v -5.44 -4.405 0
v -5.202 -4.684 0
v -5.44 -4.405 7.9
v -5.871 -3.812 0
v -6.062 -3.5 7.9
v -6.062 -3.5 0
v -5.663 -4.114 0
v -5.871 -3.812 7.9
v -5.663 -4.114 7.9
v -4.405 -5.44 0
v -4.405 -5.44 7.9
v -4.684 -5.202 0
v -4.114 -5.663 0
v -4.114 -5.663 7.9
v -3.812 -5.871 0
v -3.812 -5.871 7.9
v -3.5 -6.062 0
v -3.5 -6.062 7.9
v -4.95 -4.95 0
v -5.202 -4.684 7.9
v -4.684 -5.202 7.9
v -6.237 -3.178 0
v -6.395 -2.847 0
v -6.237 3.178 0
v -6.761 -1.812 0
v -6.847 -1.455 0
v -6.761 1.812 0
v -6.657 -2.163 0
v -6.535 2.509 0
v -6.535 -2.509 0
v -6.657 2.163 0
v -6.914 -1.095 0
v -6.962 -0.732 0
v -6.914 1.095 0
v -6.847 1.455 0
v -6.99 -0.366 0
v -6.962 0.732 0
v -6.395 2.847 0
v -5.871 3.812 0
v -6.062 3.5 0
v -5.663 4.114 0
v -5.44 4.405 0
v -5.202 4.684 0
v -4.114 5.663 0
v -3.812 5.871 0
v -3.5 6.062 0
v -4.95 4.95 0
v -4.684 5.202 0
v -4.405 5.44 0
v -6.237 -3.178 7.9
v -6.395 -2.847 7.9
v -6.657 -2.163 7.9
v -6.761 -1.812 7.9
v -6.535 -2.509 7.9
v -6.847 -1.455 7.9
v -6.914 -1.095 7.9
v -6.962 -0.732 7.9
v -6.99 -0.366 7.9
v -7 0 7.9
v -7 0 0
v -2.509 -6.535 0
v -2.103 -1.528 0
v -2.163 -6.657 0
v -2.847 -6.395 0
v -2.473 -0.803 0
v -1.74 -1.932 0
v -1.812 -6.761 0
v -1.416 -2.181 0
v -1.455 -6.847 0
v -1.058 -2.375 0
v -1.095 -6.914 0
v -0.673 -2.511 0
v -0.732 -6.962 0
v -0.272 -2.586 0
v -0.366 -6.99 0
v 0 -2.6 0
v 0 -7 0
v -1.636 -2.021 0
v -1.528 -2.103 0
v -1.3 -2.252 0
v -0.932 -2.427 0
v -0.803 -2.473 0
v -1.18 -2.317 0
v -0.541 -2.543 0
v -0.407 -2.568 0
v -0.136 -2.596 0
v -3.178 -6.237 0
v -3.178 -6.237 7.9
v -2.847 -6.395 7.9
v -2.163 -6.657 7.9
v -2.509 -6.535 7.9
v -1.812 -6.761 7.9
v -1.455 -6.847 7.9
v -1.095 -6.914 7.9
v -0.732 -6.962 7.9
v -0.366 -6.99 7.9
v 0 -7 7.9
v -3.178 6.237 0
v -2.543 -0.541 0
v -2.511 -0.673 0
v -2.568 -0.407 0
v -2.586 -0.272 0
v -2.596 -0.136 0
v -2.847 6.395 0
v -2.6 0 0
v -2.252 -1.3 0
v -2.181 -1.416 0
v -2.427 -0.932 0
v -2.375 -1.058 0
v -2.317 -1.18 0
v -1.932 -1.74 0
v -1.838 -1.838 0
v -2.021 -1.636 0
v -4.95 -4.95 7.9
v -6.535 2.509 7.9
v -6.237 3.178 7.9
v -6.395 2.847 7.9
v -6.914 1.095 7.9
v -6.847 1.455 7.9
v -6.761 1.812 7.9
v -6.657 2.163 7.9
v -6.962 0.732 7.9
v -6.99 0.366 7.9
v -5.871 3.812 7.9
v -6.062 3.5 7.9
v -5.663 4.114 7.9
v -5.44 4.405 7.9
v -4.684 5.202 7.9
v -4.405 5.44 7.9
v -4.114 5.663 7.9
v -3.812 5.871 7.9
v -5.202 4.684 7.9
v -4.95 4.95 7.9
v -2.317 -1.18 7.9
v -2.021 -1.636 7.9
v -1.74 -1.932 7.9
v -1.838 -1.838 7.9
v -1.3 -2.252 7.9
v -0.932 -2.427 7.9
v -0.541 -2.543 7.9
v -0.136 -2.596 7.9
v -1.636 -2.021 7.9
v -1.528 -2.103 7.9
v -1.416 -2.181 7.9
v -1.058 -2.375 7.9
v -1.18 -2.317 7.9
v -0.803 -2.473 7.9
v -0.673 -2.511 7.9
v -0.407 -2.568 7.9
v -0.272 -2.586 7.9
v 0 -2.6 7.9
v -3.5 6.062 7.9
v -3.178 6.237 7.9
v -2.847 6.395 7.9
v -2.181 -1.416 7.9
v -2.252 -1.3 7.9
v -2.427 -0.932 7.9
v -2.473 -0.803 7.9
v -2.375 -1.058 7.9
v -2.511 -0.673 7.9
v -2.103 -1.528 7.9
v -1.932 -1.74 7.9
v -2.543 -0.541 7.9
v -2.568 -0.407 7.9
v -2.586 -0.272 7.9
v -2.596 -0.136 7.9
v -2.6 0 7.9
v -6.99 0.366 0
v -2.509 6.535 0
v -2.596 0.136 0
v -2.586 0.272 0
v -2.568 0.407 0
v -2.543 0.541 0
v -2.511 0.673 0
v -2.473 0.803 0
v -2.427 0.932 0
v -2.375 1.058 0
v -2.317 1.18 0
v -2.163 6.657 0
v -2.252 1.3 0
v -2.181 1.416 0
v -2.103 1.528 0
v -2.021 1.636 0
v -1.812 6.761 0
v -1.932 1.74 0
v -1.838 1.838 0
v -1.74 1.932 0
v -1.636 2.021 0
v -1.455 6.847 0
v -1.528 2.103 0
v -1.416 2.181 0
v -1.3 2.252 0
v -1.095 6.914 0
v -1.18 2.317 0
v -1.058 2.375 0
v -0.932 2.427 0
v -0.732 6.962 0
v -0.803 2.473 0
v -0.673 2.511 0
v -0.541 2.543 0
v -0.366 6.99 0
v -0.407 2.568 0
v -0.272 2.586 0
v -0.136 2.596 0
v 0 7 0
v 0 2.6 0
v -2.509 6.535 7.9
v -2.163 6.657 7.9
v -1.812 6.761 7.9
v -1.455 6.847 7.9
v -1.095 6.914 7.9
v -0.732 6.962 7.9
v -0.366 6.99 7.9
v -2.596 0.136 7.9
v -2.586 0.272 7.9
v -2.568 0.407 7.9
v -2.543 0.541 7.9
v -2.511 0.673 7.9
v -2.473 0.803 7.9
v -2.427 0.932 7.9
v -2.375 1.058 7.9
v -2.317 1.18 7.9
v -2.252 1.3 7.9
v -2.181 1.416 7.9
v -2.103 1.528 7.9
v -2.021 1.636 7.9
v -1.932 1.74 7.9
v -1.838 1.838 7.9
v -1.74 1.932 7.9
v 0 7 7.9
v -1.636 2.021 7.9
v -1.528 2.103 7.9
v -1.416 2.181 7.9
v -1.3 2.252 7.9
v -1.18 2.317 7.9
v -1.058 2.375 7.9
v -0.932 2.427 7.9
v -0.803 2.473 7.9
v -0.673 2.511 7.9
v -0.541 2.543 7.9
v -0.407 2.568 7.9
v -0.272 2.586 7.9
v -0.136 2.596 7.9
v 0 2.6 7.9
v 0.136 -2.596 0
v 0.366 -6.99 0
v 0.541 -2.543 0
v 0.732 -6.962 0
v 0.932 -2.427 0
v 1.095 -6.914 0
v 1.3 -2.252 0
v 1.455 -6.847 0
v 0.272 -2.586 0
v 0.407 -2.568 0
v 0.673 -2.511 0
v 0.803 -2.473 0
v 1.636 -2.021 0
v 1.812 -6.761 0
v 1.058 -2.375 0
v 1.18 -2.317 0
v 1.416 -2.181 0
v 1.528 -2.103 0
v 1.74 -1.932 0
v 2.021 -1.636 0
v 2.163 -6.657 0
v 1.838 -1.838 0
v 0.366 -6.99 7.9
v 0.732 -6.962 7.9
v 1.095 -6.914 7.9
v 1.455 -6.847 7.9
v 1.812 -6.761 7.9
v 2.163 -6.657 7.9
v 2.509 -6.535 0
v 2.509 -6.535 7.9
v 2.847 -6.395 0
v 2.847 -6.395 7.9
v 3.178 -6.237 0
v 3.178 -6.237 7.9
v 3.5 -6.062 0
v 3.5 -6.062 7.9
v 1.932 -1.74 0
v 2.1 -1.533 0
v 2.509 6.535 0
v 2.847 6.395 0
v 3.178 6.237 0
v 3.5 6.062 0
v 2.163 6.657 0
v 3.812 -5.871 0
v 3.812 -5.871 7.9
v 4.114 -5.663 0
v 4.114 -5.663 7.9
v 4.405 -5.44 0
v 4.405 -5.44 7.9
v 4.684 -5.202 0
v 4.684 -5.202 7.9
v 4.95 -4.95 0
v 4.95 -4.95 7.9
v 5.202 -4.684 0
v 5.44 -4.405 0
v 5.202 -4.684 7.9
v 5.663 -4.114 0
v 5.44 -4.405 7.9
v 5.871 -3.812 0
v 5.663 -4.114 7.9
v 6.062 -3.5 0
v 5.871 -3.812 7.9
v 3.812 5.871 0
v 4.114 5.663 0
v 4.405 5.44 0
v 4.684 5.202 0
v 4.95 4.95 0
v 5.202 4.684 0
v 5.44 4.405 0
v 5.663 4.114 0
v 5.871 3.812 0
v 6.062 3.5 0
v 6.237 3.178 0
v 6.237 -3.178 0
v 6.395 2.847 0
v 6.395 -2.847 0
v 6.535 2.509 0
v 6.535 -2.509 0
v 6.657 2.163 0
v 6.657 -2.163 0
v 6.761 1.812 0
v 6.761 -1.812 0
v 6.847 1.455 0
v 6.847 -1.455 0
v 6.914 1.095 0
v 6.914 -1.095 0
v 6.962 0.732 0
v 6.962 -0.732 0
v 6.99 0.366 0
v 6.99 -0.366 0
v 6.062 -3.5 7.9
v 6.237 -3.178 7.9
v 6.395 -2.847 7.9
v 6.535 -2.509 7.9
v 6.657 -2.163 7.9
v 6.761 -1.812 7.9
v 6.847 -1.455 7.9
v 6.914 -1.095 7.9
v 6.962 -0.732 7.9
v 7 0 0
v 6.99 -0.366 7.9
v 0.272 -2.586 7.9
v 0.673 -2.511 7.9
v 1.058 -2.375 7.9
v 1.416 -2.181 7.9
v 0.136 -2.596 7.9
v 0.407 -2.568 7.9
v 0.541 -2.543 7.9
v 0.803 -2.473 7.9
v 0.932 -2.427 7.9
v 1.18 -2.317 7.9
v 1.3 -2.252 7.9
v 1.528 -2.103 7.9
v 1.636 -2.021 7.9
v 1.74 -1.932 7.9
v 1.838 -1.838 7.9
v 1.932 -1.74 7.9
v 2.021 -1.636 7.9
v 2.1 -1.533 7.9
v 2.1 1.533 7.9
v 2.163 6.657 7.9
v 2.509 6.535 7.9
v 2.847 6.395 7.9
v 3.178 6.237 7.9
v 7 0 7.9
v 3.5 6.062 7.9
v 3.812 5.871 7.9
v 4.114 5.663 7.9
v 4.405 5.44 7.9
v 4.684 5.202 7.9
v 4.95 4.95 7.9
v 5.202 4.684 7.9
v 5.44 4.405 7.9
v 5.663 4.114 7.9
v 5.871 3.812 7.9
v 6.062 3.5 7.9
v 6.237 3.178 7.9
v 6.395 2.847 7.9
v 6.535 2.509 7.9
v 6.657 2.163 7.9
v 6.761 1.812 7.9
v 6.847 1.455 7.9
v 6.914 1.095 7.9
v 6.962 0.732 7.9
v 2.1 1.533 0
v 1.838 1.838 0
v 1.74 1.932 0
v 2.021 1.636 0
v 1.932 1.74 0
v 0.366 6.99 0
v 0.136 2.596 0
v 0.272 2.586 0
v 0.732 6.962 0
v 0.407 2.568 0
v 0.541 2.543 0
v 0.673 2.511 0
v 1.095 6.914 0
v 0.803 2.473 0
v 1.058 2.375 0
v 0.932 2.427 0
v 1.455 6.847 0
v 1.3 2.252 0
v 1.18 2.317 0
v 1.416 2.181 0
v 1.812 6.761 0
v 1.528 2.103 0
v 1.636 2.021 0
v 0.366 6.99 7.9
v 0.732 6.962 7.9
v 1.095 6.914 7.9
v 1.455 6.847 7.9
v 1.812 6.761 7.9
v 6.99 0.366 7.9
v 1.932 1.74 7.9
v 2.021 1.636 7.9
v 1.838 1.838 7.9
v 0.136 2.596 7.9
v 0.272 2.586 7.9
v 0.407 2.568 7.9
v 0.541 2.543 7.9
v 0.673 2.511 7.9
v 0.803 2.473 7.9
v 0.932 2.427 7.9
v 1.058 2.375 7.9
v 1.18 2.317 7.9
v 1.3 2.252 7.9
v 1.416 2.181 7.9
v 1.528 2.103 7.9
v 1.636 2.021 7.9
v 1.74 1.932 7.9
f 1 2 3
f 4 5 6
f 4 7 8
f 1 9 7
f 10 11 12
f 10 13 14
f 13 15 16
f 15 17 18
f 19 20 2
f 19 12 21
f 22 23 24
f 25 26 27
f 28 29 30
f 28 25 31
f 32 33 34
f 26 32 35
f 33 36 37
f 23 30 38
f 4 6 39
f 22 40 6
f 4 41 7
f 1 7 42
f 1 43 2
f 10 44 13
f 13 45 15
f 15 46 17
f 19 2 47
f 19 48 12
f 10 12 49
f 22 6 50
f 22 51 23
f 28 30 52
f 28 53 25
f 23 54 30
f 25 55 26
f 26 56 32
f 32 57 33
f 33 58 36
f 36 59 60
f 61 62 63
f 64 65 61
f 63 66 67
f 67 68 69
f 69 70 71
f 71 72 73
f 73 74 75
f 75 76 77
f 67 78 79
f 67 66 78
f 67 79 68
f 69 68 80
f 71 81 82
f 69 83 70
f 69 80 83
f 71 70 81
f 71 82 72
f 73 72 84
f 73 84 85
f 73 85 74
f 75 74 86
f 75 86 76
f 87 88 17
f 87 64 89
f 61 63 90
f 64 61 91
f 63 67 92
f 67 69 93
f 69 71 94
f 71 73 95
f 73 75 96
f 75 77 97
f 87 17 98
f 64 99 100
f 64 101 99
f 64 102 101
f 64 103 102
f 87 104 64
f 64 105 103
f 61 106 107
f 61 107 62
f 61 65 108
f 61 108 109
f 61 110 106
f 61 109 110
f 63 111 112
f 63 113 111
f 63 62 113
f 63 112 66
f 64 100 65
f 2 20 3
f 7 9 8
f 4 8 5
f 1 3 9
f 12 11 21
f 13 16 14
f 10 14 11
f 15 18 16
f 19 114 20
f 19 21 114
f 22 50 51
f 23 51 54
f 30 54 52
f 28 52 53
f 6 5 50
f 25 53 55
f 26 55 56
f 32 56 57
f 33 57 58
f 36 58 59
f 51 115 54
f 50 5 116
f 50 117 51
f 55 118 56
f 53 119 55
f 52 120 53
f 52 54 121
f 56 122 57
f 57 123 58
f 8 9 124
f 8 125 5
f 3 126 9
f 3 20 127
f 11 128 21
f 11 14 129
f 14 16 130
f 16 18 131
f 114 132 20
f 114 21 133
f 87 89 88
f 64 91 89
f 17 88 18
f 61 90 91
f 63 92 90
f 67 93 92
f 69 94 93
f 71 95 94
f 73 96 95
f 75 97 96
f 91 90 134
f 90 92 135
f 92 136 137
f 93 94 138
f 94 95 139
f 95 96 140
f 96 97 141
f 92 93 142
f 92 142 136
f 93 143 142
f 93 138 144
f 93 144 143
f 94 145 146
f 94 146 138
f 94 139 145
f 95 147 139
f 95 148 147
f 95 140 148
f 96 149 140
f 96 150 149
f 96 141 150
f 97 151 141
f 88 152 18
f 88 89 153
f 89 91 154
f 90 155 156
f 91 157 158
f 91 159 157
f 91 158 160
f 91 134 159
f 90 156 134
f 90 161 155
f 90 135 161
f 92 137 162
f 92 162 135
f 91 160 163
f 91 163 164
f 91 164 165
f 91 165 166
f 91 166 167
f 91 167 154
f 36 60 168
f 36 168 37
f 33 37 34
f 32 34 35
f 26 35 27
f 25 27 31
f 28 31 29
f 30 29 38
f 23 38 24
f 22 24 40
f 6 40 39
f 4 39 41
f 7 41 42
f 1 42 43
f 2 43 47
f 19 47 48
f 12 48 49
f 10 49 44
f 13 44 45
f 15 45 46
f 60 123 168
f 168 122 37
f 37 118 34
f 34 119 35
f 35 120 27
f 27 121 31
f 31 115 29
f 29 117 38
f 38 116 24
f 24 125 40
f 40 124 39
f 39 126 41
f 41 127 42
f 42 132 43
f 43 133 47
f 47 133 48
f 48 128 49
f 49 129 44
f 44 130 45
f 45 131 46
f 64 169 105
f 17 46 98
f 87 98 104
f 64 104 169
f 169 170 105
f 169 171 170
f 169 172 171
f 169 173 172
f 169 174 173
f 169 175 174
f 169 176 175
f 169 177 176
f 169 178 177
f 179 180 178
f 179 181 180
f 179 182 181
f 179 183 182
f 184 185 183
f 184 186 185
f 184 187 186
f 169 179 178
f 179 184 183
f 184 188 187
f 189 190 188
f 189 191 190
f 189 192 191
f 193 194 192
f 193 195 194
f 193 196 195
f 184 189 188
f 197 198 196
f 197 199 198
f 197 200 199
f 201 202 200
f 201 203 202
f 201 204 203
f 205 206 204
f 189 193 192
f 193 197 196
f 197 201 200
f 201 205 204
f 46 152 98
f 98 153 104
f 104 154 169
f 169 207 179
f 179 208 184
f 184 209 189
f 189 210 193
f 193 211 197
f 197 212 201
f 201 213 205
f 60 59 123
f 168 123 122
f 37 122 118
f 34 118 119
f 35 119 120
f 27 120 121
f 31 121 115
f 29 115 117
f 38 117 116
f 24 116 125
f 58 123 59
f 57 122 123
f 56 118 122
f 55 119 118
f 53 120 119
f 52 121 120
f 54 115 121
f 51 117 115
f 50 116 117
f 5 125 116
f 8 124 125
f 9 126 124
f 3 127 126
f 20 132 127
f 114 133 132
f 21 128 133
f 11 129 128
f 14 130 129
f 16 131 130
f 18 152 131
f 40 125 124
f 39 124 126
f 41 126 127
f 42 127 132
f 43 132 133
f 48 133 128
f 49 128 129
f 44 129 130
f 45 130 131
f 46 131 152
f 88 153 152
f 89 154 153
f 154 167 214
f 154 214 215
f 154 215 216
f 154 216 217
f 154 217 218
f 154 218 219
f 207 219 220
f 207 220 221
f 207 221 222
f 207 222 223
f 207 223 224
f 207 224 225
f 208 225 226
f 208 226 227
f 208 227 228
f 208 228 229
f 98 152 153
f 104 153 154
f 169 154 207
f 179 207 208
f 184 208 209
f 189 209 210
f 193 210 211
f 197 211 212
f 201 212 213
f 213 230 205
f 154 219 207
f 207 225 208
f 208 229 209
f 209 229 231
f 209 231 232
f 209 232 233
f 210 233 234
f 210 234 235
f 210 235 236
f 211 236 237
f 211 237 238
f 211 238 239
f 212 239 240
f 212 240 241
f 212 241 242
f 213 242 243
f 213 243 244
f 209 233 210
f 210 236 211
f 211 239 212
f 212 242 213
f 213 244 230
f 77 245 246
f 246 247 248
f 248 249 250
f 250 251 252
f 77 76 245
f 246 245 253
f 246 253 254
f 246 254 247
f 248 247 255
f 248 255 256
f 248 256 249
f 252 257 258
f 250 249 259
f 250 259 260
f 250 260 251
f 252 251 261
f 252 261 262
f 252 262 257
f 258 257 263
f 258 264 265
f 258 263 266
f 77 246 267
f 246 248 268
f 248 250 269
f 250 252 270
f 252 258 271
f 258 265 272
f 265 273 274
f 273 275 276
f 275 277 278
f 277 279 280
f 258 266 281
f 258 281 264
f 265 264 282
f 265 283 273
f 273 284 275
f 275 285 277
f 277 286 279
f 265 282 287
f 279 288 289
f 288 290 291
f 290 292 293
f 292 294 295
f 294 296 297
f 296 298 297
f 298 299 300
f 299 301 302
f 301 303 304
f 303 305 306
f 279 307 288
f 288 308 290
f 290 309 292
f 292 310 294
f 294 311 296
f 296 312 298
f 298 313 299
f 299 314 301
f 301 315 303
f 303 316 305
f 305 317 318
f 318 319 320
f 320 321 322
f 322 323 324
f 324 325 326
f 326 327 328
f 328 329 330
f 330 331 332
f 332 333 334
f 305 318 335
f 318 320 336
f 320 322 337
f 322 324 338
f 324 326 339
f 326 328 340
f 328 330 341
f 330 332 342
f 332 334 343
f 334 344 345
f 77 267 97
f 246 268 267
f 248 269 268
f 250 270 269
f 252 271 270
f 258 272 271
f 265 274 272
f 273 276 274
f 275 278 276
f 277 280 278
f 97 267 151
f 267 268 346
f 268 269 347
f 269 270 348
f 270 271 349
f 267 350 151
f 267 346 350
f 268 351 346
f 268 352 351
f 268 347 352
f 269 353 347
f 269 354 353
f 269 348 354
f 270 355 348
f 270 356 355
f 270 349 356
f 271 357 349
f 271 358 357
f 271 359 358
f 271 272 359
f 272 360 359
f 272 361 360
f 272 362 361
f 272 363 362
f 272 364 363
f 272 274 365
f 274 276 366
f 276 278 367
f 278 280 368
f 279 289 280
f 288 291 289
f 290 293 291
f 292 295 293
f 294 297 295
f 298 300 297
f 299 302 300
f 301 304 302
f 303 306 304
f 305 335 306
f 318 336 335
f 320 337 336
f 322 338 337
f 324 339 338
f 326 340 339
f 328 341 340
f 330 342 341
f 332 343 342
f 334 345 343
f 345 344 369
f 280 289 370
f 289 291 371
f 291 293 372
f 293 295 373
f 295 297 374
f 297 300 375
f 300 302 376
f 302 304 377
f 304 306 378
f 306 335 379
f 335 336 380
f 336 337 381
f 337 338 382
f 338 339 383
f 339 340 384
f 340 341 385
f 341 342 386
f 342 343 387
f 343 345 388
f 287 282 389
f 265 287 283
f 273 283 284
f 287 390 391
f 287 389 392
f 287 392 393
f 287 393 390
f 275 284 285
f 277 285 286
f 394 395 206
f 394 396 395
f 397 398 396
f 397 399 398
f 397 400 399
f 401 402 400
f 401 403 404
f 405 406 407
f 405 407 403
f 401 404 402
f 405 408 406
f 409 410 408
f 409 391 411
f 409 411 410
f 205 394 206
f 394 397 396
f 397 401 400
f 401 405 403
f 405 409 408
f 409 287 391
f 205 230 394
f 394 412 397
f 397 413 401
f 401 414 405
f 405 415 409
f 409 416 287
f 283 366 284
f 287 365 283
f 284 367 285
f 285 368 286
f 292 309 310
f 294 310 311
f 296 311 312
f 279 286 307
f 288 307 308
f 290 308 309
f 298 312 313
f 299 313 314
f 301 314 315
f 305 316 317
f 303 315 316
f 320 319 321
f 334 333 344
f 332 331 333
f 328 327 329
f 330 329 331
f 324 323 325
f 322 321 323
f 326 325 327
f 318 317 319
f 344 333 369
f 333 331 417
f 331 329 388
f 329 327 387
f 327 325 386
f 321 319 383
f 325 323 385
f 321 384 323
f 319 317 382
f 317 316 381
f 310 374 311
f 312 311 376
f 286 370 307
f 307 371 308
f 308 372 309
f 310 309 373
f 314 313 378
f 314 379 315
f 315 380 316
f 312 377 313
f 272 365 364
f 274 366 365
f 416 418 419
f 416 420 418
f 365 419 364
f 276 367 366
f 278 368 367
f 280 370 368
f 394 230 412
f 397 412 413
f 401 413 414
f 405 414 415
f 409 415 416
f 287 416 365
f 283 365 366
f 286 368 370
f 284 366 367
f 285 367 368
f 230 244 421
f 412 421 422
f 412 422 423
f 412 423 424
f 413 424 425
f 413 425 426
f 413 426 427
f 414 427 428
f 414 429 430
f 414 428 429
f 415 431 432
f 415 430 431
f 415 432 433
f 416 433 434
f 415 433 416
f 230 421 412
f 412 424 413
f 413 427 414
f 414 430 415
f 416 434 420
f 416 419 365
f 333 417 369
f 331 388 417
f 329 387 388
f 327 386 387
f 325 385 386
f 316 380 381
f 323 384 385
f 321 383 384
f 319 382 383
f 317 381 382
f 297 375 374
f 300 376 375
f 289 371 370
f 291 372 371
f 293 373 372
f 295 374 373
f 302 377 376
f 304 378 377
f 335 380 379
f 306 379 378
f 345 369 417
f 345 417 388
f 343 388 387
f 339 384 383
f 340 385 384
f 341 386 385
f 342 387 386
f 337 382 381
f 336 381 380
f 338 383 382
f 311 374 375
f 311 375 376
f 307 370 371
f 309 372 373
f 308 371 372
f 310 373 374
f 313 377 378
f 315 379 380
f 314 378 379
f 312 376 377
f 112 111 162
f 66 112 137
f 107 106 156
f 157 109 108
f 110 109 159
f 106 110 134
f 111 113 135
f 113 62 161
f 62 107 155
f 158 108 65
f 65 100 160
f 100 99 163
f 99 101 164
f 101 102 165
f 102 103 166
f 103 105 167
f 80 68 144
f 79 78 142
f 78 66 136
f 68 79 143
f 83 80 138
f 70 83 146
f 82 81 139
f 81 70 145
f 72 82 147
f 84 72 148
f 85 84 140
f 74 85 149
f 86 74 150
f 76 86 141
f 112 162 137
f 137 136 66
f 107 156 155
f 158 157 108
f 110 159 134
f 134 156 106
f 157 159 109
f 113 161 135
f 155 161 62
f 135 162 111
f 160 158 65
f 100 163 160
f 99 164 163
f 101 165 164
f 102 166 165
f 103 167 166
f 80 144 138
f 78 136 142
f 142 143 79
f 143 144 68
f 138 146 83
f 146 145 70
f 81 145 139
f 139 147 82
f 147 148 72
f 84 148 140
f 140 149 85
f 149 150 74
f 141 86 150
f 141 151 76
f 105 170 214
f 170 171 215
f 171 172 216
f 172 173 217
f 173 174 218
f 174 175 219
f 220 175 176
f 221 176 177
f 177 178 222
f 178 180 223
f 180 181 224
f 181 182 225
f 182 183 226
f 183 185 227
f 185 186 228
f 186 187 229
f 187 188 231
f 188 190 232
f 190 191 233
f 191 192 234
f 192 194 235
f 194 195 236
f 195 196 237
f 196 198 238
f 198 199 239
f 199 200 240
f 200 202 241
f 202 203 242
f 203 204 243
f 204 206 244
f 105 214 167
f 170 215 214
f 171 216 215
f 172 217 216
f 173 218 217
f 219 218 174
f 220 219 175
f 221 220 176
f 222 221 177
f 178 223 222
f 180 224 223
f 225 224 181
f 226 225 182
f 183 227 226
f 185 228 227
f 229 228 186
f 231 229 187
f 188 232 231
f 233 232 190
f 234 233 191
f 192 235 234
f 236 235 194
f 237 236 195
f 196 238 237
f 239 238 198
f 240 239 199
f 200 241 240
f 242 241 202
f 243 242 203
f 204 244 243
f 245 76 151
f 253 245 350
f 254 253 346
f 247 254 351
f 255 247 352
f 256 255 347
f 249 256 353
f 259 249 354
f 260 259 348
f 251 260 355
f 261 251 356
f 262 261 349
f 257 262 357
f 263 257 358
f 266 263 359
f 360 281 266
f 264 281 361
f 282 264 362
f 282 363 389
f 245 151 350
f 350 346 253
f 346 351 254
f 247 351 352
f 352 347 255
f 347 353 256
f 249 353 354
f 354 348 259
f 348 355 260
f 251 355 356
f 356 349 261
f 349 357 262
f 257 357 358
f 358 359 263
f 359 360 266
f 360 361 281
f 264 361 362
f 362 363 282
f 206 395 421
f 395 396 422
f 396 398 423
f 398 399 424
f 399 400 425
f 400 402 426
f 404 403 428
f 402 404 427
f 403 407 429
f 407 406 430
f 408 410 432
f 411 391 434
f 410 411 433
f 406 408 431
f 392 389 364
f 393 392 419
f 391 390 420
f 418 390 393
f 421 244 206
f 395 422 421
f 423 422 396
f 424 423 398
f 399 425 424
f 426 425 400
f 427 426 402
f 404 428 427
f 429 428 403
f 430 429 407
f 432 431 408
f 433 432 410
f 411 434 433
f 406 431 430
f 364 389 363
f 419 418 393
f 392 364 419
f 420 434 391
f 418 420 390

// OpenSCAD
// file: oobb_hardware.scad
// Generated from installed OOBB v5. All primitives use overhang=True.

module oobb_hole_m2() {
difference() {
	union() {
		cylinder(h = 1, r = 1.35);
	}
	union();
}

}

module oobb_hole_m3() {
difference() {
	union() {
		cylinder(h = 1, r = 1.8);
	}
	union();
}

}

module oobb_hole_m6() {
difference() {
	union() {
		cylinder(h = 1, r = 3.25);
	}
	union();
}

}

module oobb_nut_m2() {
difference() {
	union() {
		translate(v = [0, 0, 0]) {
			rotate(a = [0, 0, 0]) {
				difference() {
					union() {
						linear_extrude(height = 2.2) {
							polygon(points = [[2.4234, 0.0], [1.2117000000000002, 2.0987259635312085], [-1.2116999999999996, 2.0987259635312085], [-2.4234, 2.967809053053696e-16], [-1.211700000000001, -2.098725963531208], [1.2116999999999984, -2.0987259635312094]]);
						}
						translate(v = [-1.25, -2.75, -0.3]) {
							cube(size = [2.5, 5.5, 0.3]);
						}
						translate(v = [-1.25, -1.25, -0.6]) {
							cube(size = [2.5, 2.5, 0.3]);
						}
						translate(v = [-1.25, -2.75, 2.2]) {
							cube(size = [2.5, 5.5, 0.3]);
						}
						translate(v = [-1.25, -1.25, 2.5]) {
							cube(size = [2.5, 2.5, 0.3]);
						}
					}
					union();
				}
			}
		}
	}
	union();
}

}

module oobb_socket_m2() {
difference() {
	union() {
		translate(v = [0, 0, 0]) {
			rotate(a = [0, 0, 0]) {
				difference() {
					union() {
						cylinder(h = 2.2, r = 2.1);
						translate(v = [-1.25, -2.75, -0.3]) {
							cube(size = [2.5, 5.5, 0.3]);
						}
						translate(v = [-1.25, -1.25, -0.6]) {
							cube(size = [2.5, 2.5, 0.3]);
						}
					}
					union();
				}
			}
		}
	}
	union();
}

}

module oobb_nut_m3() {
difference() {
	union() {
		translate(v = [0, 0, 0]) {
			rotate(a = [0, 0, 0]) {
				difference() {
					union() {
						linear_extrude(height = 2.7) {
							polygon(points = [[3.4619999999999997, 0.0], [1.7310000000000003, 2.9981799479017264], [-1.7309999999999992, 2.9981799479017264], [-3.4619999999999997, 4.2397272186481365e-16], [-1.7310000000000014, -2.998179947901726], [1.7309999999999977, -2.9981799479017277]]);
						}
						translate(v = [-1.75, -3.25, -0.3]) {
							cube(size = [3.5, 6.5, 0.3]);
						}
						translate(v = [-1.75, -1.75, -0.6]) {
							cube(size = [3.5, 3.5, 0.3]);
						}
						translate(v = [-1.75, -3.25, 2.7]) {
							cube(size = [3.5, 6.5, 0.3]);
						}
						translate(v = [-1.75, -1.75, 3.0]) {
							cube(size = [3.5, 3.5, 0.3]);
						}
					}
					union();
				}
			}
		}
	}
	union();
}

}

module oobb_socket_m3() {
difference() {
	union() {
		translate(v = [0, 0, 0]) {
			rotate(a = [0, 0, 0]) {
				difference() {
					union() {
						cylinder(h = 3.2, r = 3.0);
						translate(v = [-1.75, -3.25, -0.3]) {
							cube(size = [3.5, 6.5, 0.3]);
						}
						translate(v = [-1.75, -1.75, -0.6]) {
							cube(size = [3.5, 3.5, 0.3]);
						}
					}
					union();
				}
			}
		}
	}
	union();
}

}
// file: parameters.scad
// Generated by working_scad.py. Edit the Python recipe to persist changes.
style = "version_5";
reduction = 20;
bearing_output = "6810";
bearing_input = "6704";
bearing_wave = "6704";
roller_diameter = 7.0;
roller_bore_diameter = 3.2;
roller_length = 12.0;
roller_material = "nylon";
central_joint_depth = 6.0;
max_screw_length = 35.0;
eccentricity = 0.75;
wave_radius = 40.0;
profile_clearance = 0.15;
roller_slot_clearance = 0.3;
roller_end_clearance = 0.3;
cage_wall = 4.0;
cage_plate_depth = 3.0;
bearing_seat_clearance = 0.1;
journal_clearance = 0.05;
bearing_axial_clearance = 0.2;
retainer_depth = 4.0;
housing_radius = 57.5;
housing_flange_width = 119.0;
housing_flange_depth = 3.0;
housing_flange_corner_radius = 1.5;
housing_screw_pitch_radius = 53.0;
housing_screw_count = 8;
input_shaft_diameter = 5.0;
input_shaft_flat_depth = 0.5;
shaft_fit_clearance = 0.1;
cage_screw_count = 5;
cage_screw_pilot_diameter = 1.6;
profile_samples_per_cavity = 100;
circle_fragments = 120;
overhang = true;
run_scad = true;
run_solidcraft = false;
// main file
include <parameters.scad>;
use <oobb_hardware.scad>;
include <geometry.scad>;
input_spacer(7.900000000000002, false, false);
